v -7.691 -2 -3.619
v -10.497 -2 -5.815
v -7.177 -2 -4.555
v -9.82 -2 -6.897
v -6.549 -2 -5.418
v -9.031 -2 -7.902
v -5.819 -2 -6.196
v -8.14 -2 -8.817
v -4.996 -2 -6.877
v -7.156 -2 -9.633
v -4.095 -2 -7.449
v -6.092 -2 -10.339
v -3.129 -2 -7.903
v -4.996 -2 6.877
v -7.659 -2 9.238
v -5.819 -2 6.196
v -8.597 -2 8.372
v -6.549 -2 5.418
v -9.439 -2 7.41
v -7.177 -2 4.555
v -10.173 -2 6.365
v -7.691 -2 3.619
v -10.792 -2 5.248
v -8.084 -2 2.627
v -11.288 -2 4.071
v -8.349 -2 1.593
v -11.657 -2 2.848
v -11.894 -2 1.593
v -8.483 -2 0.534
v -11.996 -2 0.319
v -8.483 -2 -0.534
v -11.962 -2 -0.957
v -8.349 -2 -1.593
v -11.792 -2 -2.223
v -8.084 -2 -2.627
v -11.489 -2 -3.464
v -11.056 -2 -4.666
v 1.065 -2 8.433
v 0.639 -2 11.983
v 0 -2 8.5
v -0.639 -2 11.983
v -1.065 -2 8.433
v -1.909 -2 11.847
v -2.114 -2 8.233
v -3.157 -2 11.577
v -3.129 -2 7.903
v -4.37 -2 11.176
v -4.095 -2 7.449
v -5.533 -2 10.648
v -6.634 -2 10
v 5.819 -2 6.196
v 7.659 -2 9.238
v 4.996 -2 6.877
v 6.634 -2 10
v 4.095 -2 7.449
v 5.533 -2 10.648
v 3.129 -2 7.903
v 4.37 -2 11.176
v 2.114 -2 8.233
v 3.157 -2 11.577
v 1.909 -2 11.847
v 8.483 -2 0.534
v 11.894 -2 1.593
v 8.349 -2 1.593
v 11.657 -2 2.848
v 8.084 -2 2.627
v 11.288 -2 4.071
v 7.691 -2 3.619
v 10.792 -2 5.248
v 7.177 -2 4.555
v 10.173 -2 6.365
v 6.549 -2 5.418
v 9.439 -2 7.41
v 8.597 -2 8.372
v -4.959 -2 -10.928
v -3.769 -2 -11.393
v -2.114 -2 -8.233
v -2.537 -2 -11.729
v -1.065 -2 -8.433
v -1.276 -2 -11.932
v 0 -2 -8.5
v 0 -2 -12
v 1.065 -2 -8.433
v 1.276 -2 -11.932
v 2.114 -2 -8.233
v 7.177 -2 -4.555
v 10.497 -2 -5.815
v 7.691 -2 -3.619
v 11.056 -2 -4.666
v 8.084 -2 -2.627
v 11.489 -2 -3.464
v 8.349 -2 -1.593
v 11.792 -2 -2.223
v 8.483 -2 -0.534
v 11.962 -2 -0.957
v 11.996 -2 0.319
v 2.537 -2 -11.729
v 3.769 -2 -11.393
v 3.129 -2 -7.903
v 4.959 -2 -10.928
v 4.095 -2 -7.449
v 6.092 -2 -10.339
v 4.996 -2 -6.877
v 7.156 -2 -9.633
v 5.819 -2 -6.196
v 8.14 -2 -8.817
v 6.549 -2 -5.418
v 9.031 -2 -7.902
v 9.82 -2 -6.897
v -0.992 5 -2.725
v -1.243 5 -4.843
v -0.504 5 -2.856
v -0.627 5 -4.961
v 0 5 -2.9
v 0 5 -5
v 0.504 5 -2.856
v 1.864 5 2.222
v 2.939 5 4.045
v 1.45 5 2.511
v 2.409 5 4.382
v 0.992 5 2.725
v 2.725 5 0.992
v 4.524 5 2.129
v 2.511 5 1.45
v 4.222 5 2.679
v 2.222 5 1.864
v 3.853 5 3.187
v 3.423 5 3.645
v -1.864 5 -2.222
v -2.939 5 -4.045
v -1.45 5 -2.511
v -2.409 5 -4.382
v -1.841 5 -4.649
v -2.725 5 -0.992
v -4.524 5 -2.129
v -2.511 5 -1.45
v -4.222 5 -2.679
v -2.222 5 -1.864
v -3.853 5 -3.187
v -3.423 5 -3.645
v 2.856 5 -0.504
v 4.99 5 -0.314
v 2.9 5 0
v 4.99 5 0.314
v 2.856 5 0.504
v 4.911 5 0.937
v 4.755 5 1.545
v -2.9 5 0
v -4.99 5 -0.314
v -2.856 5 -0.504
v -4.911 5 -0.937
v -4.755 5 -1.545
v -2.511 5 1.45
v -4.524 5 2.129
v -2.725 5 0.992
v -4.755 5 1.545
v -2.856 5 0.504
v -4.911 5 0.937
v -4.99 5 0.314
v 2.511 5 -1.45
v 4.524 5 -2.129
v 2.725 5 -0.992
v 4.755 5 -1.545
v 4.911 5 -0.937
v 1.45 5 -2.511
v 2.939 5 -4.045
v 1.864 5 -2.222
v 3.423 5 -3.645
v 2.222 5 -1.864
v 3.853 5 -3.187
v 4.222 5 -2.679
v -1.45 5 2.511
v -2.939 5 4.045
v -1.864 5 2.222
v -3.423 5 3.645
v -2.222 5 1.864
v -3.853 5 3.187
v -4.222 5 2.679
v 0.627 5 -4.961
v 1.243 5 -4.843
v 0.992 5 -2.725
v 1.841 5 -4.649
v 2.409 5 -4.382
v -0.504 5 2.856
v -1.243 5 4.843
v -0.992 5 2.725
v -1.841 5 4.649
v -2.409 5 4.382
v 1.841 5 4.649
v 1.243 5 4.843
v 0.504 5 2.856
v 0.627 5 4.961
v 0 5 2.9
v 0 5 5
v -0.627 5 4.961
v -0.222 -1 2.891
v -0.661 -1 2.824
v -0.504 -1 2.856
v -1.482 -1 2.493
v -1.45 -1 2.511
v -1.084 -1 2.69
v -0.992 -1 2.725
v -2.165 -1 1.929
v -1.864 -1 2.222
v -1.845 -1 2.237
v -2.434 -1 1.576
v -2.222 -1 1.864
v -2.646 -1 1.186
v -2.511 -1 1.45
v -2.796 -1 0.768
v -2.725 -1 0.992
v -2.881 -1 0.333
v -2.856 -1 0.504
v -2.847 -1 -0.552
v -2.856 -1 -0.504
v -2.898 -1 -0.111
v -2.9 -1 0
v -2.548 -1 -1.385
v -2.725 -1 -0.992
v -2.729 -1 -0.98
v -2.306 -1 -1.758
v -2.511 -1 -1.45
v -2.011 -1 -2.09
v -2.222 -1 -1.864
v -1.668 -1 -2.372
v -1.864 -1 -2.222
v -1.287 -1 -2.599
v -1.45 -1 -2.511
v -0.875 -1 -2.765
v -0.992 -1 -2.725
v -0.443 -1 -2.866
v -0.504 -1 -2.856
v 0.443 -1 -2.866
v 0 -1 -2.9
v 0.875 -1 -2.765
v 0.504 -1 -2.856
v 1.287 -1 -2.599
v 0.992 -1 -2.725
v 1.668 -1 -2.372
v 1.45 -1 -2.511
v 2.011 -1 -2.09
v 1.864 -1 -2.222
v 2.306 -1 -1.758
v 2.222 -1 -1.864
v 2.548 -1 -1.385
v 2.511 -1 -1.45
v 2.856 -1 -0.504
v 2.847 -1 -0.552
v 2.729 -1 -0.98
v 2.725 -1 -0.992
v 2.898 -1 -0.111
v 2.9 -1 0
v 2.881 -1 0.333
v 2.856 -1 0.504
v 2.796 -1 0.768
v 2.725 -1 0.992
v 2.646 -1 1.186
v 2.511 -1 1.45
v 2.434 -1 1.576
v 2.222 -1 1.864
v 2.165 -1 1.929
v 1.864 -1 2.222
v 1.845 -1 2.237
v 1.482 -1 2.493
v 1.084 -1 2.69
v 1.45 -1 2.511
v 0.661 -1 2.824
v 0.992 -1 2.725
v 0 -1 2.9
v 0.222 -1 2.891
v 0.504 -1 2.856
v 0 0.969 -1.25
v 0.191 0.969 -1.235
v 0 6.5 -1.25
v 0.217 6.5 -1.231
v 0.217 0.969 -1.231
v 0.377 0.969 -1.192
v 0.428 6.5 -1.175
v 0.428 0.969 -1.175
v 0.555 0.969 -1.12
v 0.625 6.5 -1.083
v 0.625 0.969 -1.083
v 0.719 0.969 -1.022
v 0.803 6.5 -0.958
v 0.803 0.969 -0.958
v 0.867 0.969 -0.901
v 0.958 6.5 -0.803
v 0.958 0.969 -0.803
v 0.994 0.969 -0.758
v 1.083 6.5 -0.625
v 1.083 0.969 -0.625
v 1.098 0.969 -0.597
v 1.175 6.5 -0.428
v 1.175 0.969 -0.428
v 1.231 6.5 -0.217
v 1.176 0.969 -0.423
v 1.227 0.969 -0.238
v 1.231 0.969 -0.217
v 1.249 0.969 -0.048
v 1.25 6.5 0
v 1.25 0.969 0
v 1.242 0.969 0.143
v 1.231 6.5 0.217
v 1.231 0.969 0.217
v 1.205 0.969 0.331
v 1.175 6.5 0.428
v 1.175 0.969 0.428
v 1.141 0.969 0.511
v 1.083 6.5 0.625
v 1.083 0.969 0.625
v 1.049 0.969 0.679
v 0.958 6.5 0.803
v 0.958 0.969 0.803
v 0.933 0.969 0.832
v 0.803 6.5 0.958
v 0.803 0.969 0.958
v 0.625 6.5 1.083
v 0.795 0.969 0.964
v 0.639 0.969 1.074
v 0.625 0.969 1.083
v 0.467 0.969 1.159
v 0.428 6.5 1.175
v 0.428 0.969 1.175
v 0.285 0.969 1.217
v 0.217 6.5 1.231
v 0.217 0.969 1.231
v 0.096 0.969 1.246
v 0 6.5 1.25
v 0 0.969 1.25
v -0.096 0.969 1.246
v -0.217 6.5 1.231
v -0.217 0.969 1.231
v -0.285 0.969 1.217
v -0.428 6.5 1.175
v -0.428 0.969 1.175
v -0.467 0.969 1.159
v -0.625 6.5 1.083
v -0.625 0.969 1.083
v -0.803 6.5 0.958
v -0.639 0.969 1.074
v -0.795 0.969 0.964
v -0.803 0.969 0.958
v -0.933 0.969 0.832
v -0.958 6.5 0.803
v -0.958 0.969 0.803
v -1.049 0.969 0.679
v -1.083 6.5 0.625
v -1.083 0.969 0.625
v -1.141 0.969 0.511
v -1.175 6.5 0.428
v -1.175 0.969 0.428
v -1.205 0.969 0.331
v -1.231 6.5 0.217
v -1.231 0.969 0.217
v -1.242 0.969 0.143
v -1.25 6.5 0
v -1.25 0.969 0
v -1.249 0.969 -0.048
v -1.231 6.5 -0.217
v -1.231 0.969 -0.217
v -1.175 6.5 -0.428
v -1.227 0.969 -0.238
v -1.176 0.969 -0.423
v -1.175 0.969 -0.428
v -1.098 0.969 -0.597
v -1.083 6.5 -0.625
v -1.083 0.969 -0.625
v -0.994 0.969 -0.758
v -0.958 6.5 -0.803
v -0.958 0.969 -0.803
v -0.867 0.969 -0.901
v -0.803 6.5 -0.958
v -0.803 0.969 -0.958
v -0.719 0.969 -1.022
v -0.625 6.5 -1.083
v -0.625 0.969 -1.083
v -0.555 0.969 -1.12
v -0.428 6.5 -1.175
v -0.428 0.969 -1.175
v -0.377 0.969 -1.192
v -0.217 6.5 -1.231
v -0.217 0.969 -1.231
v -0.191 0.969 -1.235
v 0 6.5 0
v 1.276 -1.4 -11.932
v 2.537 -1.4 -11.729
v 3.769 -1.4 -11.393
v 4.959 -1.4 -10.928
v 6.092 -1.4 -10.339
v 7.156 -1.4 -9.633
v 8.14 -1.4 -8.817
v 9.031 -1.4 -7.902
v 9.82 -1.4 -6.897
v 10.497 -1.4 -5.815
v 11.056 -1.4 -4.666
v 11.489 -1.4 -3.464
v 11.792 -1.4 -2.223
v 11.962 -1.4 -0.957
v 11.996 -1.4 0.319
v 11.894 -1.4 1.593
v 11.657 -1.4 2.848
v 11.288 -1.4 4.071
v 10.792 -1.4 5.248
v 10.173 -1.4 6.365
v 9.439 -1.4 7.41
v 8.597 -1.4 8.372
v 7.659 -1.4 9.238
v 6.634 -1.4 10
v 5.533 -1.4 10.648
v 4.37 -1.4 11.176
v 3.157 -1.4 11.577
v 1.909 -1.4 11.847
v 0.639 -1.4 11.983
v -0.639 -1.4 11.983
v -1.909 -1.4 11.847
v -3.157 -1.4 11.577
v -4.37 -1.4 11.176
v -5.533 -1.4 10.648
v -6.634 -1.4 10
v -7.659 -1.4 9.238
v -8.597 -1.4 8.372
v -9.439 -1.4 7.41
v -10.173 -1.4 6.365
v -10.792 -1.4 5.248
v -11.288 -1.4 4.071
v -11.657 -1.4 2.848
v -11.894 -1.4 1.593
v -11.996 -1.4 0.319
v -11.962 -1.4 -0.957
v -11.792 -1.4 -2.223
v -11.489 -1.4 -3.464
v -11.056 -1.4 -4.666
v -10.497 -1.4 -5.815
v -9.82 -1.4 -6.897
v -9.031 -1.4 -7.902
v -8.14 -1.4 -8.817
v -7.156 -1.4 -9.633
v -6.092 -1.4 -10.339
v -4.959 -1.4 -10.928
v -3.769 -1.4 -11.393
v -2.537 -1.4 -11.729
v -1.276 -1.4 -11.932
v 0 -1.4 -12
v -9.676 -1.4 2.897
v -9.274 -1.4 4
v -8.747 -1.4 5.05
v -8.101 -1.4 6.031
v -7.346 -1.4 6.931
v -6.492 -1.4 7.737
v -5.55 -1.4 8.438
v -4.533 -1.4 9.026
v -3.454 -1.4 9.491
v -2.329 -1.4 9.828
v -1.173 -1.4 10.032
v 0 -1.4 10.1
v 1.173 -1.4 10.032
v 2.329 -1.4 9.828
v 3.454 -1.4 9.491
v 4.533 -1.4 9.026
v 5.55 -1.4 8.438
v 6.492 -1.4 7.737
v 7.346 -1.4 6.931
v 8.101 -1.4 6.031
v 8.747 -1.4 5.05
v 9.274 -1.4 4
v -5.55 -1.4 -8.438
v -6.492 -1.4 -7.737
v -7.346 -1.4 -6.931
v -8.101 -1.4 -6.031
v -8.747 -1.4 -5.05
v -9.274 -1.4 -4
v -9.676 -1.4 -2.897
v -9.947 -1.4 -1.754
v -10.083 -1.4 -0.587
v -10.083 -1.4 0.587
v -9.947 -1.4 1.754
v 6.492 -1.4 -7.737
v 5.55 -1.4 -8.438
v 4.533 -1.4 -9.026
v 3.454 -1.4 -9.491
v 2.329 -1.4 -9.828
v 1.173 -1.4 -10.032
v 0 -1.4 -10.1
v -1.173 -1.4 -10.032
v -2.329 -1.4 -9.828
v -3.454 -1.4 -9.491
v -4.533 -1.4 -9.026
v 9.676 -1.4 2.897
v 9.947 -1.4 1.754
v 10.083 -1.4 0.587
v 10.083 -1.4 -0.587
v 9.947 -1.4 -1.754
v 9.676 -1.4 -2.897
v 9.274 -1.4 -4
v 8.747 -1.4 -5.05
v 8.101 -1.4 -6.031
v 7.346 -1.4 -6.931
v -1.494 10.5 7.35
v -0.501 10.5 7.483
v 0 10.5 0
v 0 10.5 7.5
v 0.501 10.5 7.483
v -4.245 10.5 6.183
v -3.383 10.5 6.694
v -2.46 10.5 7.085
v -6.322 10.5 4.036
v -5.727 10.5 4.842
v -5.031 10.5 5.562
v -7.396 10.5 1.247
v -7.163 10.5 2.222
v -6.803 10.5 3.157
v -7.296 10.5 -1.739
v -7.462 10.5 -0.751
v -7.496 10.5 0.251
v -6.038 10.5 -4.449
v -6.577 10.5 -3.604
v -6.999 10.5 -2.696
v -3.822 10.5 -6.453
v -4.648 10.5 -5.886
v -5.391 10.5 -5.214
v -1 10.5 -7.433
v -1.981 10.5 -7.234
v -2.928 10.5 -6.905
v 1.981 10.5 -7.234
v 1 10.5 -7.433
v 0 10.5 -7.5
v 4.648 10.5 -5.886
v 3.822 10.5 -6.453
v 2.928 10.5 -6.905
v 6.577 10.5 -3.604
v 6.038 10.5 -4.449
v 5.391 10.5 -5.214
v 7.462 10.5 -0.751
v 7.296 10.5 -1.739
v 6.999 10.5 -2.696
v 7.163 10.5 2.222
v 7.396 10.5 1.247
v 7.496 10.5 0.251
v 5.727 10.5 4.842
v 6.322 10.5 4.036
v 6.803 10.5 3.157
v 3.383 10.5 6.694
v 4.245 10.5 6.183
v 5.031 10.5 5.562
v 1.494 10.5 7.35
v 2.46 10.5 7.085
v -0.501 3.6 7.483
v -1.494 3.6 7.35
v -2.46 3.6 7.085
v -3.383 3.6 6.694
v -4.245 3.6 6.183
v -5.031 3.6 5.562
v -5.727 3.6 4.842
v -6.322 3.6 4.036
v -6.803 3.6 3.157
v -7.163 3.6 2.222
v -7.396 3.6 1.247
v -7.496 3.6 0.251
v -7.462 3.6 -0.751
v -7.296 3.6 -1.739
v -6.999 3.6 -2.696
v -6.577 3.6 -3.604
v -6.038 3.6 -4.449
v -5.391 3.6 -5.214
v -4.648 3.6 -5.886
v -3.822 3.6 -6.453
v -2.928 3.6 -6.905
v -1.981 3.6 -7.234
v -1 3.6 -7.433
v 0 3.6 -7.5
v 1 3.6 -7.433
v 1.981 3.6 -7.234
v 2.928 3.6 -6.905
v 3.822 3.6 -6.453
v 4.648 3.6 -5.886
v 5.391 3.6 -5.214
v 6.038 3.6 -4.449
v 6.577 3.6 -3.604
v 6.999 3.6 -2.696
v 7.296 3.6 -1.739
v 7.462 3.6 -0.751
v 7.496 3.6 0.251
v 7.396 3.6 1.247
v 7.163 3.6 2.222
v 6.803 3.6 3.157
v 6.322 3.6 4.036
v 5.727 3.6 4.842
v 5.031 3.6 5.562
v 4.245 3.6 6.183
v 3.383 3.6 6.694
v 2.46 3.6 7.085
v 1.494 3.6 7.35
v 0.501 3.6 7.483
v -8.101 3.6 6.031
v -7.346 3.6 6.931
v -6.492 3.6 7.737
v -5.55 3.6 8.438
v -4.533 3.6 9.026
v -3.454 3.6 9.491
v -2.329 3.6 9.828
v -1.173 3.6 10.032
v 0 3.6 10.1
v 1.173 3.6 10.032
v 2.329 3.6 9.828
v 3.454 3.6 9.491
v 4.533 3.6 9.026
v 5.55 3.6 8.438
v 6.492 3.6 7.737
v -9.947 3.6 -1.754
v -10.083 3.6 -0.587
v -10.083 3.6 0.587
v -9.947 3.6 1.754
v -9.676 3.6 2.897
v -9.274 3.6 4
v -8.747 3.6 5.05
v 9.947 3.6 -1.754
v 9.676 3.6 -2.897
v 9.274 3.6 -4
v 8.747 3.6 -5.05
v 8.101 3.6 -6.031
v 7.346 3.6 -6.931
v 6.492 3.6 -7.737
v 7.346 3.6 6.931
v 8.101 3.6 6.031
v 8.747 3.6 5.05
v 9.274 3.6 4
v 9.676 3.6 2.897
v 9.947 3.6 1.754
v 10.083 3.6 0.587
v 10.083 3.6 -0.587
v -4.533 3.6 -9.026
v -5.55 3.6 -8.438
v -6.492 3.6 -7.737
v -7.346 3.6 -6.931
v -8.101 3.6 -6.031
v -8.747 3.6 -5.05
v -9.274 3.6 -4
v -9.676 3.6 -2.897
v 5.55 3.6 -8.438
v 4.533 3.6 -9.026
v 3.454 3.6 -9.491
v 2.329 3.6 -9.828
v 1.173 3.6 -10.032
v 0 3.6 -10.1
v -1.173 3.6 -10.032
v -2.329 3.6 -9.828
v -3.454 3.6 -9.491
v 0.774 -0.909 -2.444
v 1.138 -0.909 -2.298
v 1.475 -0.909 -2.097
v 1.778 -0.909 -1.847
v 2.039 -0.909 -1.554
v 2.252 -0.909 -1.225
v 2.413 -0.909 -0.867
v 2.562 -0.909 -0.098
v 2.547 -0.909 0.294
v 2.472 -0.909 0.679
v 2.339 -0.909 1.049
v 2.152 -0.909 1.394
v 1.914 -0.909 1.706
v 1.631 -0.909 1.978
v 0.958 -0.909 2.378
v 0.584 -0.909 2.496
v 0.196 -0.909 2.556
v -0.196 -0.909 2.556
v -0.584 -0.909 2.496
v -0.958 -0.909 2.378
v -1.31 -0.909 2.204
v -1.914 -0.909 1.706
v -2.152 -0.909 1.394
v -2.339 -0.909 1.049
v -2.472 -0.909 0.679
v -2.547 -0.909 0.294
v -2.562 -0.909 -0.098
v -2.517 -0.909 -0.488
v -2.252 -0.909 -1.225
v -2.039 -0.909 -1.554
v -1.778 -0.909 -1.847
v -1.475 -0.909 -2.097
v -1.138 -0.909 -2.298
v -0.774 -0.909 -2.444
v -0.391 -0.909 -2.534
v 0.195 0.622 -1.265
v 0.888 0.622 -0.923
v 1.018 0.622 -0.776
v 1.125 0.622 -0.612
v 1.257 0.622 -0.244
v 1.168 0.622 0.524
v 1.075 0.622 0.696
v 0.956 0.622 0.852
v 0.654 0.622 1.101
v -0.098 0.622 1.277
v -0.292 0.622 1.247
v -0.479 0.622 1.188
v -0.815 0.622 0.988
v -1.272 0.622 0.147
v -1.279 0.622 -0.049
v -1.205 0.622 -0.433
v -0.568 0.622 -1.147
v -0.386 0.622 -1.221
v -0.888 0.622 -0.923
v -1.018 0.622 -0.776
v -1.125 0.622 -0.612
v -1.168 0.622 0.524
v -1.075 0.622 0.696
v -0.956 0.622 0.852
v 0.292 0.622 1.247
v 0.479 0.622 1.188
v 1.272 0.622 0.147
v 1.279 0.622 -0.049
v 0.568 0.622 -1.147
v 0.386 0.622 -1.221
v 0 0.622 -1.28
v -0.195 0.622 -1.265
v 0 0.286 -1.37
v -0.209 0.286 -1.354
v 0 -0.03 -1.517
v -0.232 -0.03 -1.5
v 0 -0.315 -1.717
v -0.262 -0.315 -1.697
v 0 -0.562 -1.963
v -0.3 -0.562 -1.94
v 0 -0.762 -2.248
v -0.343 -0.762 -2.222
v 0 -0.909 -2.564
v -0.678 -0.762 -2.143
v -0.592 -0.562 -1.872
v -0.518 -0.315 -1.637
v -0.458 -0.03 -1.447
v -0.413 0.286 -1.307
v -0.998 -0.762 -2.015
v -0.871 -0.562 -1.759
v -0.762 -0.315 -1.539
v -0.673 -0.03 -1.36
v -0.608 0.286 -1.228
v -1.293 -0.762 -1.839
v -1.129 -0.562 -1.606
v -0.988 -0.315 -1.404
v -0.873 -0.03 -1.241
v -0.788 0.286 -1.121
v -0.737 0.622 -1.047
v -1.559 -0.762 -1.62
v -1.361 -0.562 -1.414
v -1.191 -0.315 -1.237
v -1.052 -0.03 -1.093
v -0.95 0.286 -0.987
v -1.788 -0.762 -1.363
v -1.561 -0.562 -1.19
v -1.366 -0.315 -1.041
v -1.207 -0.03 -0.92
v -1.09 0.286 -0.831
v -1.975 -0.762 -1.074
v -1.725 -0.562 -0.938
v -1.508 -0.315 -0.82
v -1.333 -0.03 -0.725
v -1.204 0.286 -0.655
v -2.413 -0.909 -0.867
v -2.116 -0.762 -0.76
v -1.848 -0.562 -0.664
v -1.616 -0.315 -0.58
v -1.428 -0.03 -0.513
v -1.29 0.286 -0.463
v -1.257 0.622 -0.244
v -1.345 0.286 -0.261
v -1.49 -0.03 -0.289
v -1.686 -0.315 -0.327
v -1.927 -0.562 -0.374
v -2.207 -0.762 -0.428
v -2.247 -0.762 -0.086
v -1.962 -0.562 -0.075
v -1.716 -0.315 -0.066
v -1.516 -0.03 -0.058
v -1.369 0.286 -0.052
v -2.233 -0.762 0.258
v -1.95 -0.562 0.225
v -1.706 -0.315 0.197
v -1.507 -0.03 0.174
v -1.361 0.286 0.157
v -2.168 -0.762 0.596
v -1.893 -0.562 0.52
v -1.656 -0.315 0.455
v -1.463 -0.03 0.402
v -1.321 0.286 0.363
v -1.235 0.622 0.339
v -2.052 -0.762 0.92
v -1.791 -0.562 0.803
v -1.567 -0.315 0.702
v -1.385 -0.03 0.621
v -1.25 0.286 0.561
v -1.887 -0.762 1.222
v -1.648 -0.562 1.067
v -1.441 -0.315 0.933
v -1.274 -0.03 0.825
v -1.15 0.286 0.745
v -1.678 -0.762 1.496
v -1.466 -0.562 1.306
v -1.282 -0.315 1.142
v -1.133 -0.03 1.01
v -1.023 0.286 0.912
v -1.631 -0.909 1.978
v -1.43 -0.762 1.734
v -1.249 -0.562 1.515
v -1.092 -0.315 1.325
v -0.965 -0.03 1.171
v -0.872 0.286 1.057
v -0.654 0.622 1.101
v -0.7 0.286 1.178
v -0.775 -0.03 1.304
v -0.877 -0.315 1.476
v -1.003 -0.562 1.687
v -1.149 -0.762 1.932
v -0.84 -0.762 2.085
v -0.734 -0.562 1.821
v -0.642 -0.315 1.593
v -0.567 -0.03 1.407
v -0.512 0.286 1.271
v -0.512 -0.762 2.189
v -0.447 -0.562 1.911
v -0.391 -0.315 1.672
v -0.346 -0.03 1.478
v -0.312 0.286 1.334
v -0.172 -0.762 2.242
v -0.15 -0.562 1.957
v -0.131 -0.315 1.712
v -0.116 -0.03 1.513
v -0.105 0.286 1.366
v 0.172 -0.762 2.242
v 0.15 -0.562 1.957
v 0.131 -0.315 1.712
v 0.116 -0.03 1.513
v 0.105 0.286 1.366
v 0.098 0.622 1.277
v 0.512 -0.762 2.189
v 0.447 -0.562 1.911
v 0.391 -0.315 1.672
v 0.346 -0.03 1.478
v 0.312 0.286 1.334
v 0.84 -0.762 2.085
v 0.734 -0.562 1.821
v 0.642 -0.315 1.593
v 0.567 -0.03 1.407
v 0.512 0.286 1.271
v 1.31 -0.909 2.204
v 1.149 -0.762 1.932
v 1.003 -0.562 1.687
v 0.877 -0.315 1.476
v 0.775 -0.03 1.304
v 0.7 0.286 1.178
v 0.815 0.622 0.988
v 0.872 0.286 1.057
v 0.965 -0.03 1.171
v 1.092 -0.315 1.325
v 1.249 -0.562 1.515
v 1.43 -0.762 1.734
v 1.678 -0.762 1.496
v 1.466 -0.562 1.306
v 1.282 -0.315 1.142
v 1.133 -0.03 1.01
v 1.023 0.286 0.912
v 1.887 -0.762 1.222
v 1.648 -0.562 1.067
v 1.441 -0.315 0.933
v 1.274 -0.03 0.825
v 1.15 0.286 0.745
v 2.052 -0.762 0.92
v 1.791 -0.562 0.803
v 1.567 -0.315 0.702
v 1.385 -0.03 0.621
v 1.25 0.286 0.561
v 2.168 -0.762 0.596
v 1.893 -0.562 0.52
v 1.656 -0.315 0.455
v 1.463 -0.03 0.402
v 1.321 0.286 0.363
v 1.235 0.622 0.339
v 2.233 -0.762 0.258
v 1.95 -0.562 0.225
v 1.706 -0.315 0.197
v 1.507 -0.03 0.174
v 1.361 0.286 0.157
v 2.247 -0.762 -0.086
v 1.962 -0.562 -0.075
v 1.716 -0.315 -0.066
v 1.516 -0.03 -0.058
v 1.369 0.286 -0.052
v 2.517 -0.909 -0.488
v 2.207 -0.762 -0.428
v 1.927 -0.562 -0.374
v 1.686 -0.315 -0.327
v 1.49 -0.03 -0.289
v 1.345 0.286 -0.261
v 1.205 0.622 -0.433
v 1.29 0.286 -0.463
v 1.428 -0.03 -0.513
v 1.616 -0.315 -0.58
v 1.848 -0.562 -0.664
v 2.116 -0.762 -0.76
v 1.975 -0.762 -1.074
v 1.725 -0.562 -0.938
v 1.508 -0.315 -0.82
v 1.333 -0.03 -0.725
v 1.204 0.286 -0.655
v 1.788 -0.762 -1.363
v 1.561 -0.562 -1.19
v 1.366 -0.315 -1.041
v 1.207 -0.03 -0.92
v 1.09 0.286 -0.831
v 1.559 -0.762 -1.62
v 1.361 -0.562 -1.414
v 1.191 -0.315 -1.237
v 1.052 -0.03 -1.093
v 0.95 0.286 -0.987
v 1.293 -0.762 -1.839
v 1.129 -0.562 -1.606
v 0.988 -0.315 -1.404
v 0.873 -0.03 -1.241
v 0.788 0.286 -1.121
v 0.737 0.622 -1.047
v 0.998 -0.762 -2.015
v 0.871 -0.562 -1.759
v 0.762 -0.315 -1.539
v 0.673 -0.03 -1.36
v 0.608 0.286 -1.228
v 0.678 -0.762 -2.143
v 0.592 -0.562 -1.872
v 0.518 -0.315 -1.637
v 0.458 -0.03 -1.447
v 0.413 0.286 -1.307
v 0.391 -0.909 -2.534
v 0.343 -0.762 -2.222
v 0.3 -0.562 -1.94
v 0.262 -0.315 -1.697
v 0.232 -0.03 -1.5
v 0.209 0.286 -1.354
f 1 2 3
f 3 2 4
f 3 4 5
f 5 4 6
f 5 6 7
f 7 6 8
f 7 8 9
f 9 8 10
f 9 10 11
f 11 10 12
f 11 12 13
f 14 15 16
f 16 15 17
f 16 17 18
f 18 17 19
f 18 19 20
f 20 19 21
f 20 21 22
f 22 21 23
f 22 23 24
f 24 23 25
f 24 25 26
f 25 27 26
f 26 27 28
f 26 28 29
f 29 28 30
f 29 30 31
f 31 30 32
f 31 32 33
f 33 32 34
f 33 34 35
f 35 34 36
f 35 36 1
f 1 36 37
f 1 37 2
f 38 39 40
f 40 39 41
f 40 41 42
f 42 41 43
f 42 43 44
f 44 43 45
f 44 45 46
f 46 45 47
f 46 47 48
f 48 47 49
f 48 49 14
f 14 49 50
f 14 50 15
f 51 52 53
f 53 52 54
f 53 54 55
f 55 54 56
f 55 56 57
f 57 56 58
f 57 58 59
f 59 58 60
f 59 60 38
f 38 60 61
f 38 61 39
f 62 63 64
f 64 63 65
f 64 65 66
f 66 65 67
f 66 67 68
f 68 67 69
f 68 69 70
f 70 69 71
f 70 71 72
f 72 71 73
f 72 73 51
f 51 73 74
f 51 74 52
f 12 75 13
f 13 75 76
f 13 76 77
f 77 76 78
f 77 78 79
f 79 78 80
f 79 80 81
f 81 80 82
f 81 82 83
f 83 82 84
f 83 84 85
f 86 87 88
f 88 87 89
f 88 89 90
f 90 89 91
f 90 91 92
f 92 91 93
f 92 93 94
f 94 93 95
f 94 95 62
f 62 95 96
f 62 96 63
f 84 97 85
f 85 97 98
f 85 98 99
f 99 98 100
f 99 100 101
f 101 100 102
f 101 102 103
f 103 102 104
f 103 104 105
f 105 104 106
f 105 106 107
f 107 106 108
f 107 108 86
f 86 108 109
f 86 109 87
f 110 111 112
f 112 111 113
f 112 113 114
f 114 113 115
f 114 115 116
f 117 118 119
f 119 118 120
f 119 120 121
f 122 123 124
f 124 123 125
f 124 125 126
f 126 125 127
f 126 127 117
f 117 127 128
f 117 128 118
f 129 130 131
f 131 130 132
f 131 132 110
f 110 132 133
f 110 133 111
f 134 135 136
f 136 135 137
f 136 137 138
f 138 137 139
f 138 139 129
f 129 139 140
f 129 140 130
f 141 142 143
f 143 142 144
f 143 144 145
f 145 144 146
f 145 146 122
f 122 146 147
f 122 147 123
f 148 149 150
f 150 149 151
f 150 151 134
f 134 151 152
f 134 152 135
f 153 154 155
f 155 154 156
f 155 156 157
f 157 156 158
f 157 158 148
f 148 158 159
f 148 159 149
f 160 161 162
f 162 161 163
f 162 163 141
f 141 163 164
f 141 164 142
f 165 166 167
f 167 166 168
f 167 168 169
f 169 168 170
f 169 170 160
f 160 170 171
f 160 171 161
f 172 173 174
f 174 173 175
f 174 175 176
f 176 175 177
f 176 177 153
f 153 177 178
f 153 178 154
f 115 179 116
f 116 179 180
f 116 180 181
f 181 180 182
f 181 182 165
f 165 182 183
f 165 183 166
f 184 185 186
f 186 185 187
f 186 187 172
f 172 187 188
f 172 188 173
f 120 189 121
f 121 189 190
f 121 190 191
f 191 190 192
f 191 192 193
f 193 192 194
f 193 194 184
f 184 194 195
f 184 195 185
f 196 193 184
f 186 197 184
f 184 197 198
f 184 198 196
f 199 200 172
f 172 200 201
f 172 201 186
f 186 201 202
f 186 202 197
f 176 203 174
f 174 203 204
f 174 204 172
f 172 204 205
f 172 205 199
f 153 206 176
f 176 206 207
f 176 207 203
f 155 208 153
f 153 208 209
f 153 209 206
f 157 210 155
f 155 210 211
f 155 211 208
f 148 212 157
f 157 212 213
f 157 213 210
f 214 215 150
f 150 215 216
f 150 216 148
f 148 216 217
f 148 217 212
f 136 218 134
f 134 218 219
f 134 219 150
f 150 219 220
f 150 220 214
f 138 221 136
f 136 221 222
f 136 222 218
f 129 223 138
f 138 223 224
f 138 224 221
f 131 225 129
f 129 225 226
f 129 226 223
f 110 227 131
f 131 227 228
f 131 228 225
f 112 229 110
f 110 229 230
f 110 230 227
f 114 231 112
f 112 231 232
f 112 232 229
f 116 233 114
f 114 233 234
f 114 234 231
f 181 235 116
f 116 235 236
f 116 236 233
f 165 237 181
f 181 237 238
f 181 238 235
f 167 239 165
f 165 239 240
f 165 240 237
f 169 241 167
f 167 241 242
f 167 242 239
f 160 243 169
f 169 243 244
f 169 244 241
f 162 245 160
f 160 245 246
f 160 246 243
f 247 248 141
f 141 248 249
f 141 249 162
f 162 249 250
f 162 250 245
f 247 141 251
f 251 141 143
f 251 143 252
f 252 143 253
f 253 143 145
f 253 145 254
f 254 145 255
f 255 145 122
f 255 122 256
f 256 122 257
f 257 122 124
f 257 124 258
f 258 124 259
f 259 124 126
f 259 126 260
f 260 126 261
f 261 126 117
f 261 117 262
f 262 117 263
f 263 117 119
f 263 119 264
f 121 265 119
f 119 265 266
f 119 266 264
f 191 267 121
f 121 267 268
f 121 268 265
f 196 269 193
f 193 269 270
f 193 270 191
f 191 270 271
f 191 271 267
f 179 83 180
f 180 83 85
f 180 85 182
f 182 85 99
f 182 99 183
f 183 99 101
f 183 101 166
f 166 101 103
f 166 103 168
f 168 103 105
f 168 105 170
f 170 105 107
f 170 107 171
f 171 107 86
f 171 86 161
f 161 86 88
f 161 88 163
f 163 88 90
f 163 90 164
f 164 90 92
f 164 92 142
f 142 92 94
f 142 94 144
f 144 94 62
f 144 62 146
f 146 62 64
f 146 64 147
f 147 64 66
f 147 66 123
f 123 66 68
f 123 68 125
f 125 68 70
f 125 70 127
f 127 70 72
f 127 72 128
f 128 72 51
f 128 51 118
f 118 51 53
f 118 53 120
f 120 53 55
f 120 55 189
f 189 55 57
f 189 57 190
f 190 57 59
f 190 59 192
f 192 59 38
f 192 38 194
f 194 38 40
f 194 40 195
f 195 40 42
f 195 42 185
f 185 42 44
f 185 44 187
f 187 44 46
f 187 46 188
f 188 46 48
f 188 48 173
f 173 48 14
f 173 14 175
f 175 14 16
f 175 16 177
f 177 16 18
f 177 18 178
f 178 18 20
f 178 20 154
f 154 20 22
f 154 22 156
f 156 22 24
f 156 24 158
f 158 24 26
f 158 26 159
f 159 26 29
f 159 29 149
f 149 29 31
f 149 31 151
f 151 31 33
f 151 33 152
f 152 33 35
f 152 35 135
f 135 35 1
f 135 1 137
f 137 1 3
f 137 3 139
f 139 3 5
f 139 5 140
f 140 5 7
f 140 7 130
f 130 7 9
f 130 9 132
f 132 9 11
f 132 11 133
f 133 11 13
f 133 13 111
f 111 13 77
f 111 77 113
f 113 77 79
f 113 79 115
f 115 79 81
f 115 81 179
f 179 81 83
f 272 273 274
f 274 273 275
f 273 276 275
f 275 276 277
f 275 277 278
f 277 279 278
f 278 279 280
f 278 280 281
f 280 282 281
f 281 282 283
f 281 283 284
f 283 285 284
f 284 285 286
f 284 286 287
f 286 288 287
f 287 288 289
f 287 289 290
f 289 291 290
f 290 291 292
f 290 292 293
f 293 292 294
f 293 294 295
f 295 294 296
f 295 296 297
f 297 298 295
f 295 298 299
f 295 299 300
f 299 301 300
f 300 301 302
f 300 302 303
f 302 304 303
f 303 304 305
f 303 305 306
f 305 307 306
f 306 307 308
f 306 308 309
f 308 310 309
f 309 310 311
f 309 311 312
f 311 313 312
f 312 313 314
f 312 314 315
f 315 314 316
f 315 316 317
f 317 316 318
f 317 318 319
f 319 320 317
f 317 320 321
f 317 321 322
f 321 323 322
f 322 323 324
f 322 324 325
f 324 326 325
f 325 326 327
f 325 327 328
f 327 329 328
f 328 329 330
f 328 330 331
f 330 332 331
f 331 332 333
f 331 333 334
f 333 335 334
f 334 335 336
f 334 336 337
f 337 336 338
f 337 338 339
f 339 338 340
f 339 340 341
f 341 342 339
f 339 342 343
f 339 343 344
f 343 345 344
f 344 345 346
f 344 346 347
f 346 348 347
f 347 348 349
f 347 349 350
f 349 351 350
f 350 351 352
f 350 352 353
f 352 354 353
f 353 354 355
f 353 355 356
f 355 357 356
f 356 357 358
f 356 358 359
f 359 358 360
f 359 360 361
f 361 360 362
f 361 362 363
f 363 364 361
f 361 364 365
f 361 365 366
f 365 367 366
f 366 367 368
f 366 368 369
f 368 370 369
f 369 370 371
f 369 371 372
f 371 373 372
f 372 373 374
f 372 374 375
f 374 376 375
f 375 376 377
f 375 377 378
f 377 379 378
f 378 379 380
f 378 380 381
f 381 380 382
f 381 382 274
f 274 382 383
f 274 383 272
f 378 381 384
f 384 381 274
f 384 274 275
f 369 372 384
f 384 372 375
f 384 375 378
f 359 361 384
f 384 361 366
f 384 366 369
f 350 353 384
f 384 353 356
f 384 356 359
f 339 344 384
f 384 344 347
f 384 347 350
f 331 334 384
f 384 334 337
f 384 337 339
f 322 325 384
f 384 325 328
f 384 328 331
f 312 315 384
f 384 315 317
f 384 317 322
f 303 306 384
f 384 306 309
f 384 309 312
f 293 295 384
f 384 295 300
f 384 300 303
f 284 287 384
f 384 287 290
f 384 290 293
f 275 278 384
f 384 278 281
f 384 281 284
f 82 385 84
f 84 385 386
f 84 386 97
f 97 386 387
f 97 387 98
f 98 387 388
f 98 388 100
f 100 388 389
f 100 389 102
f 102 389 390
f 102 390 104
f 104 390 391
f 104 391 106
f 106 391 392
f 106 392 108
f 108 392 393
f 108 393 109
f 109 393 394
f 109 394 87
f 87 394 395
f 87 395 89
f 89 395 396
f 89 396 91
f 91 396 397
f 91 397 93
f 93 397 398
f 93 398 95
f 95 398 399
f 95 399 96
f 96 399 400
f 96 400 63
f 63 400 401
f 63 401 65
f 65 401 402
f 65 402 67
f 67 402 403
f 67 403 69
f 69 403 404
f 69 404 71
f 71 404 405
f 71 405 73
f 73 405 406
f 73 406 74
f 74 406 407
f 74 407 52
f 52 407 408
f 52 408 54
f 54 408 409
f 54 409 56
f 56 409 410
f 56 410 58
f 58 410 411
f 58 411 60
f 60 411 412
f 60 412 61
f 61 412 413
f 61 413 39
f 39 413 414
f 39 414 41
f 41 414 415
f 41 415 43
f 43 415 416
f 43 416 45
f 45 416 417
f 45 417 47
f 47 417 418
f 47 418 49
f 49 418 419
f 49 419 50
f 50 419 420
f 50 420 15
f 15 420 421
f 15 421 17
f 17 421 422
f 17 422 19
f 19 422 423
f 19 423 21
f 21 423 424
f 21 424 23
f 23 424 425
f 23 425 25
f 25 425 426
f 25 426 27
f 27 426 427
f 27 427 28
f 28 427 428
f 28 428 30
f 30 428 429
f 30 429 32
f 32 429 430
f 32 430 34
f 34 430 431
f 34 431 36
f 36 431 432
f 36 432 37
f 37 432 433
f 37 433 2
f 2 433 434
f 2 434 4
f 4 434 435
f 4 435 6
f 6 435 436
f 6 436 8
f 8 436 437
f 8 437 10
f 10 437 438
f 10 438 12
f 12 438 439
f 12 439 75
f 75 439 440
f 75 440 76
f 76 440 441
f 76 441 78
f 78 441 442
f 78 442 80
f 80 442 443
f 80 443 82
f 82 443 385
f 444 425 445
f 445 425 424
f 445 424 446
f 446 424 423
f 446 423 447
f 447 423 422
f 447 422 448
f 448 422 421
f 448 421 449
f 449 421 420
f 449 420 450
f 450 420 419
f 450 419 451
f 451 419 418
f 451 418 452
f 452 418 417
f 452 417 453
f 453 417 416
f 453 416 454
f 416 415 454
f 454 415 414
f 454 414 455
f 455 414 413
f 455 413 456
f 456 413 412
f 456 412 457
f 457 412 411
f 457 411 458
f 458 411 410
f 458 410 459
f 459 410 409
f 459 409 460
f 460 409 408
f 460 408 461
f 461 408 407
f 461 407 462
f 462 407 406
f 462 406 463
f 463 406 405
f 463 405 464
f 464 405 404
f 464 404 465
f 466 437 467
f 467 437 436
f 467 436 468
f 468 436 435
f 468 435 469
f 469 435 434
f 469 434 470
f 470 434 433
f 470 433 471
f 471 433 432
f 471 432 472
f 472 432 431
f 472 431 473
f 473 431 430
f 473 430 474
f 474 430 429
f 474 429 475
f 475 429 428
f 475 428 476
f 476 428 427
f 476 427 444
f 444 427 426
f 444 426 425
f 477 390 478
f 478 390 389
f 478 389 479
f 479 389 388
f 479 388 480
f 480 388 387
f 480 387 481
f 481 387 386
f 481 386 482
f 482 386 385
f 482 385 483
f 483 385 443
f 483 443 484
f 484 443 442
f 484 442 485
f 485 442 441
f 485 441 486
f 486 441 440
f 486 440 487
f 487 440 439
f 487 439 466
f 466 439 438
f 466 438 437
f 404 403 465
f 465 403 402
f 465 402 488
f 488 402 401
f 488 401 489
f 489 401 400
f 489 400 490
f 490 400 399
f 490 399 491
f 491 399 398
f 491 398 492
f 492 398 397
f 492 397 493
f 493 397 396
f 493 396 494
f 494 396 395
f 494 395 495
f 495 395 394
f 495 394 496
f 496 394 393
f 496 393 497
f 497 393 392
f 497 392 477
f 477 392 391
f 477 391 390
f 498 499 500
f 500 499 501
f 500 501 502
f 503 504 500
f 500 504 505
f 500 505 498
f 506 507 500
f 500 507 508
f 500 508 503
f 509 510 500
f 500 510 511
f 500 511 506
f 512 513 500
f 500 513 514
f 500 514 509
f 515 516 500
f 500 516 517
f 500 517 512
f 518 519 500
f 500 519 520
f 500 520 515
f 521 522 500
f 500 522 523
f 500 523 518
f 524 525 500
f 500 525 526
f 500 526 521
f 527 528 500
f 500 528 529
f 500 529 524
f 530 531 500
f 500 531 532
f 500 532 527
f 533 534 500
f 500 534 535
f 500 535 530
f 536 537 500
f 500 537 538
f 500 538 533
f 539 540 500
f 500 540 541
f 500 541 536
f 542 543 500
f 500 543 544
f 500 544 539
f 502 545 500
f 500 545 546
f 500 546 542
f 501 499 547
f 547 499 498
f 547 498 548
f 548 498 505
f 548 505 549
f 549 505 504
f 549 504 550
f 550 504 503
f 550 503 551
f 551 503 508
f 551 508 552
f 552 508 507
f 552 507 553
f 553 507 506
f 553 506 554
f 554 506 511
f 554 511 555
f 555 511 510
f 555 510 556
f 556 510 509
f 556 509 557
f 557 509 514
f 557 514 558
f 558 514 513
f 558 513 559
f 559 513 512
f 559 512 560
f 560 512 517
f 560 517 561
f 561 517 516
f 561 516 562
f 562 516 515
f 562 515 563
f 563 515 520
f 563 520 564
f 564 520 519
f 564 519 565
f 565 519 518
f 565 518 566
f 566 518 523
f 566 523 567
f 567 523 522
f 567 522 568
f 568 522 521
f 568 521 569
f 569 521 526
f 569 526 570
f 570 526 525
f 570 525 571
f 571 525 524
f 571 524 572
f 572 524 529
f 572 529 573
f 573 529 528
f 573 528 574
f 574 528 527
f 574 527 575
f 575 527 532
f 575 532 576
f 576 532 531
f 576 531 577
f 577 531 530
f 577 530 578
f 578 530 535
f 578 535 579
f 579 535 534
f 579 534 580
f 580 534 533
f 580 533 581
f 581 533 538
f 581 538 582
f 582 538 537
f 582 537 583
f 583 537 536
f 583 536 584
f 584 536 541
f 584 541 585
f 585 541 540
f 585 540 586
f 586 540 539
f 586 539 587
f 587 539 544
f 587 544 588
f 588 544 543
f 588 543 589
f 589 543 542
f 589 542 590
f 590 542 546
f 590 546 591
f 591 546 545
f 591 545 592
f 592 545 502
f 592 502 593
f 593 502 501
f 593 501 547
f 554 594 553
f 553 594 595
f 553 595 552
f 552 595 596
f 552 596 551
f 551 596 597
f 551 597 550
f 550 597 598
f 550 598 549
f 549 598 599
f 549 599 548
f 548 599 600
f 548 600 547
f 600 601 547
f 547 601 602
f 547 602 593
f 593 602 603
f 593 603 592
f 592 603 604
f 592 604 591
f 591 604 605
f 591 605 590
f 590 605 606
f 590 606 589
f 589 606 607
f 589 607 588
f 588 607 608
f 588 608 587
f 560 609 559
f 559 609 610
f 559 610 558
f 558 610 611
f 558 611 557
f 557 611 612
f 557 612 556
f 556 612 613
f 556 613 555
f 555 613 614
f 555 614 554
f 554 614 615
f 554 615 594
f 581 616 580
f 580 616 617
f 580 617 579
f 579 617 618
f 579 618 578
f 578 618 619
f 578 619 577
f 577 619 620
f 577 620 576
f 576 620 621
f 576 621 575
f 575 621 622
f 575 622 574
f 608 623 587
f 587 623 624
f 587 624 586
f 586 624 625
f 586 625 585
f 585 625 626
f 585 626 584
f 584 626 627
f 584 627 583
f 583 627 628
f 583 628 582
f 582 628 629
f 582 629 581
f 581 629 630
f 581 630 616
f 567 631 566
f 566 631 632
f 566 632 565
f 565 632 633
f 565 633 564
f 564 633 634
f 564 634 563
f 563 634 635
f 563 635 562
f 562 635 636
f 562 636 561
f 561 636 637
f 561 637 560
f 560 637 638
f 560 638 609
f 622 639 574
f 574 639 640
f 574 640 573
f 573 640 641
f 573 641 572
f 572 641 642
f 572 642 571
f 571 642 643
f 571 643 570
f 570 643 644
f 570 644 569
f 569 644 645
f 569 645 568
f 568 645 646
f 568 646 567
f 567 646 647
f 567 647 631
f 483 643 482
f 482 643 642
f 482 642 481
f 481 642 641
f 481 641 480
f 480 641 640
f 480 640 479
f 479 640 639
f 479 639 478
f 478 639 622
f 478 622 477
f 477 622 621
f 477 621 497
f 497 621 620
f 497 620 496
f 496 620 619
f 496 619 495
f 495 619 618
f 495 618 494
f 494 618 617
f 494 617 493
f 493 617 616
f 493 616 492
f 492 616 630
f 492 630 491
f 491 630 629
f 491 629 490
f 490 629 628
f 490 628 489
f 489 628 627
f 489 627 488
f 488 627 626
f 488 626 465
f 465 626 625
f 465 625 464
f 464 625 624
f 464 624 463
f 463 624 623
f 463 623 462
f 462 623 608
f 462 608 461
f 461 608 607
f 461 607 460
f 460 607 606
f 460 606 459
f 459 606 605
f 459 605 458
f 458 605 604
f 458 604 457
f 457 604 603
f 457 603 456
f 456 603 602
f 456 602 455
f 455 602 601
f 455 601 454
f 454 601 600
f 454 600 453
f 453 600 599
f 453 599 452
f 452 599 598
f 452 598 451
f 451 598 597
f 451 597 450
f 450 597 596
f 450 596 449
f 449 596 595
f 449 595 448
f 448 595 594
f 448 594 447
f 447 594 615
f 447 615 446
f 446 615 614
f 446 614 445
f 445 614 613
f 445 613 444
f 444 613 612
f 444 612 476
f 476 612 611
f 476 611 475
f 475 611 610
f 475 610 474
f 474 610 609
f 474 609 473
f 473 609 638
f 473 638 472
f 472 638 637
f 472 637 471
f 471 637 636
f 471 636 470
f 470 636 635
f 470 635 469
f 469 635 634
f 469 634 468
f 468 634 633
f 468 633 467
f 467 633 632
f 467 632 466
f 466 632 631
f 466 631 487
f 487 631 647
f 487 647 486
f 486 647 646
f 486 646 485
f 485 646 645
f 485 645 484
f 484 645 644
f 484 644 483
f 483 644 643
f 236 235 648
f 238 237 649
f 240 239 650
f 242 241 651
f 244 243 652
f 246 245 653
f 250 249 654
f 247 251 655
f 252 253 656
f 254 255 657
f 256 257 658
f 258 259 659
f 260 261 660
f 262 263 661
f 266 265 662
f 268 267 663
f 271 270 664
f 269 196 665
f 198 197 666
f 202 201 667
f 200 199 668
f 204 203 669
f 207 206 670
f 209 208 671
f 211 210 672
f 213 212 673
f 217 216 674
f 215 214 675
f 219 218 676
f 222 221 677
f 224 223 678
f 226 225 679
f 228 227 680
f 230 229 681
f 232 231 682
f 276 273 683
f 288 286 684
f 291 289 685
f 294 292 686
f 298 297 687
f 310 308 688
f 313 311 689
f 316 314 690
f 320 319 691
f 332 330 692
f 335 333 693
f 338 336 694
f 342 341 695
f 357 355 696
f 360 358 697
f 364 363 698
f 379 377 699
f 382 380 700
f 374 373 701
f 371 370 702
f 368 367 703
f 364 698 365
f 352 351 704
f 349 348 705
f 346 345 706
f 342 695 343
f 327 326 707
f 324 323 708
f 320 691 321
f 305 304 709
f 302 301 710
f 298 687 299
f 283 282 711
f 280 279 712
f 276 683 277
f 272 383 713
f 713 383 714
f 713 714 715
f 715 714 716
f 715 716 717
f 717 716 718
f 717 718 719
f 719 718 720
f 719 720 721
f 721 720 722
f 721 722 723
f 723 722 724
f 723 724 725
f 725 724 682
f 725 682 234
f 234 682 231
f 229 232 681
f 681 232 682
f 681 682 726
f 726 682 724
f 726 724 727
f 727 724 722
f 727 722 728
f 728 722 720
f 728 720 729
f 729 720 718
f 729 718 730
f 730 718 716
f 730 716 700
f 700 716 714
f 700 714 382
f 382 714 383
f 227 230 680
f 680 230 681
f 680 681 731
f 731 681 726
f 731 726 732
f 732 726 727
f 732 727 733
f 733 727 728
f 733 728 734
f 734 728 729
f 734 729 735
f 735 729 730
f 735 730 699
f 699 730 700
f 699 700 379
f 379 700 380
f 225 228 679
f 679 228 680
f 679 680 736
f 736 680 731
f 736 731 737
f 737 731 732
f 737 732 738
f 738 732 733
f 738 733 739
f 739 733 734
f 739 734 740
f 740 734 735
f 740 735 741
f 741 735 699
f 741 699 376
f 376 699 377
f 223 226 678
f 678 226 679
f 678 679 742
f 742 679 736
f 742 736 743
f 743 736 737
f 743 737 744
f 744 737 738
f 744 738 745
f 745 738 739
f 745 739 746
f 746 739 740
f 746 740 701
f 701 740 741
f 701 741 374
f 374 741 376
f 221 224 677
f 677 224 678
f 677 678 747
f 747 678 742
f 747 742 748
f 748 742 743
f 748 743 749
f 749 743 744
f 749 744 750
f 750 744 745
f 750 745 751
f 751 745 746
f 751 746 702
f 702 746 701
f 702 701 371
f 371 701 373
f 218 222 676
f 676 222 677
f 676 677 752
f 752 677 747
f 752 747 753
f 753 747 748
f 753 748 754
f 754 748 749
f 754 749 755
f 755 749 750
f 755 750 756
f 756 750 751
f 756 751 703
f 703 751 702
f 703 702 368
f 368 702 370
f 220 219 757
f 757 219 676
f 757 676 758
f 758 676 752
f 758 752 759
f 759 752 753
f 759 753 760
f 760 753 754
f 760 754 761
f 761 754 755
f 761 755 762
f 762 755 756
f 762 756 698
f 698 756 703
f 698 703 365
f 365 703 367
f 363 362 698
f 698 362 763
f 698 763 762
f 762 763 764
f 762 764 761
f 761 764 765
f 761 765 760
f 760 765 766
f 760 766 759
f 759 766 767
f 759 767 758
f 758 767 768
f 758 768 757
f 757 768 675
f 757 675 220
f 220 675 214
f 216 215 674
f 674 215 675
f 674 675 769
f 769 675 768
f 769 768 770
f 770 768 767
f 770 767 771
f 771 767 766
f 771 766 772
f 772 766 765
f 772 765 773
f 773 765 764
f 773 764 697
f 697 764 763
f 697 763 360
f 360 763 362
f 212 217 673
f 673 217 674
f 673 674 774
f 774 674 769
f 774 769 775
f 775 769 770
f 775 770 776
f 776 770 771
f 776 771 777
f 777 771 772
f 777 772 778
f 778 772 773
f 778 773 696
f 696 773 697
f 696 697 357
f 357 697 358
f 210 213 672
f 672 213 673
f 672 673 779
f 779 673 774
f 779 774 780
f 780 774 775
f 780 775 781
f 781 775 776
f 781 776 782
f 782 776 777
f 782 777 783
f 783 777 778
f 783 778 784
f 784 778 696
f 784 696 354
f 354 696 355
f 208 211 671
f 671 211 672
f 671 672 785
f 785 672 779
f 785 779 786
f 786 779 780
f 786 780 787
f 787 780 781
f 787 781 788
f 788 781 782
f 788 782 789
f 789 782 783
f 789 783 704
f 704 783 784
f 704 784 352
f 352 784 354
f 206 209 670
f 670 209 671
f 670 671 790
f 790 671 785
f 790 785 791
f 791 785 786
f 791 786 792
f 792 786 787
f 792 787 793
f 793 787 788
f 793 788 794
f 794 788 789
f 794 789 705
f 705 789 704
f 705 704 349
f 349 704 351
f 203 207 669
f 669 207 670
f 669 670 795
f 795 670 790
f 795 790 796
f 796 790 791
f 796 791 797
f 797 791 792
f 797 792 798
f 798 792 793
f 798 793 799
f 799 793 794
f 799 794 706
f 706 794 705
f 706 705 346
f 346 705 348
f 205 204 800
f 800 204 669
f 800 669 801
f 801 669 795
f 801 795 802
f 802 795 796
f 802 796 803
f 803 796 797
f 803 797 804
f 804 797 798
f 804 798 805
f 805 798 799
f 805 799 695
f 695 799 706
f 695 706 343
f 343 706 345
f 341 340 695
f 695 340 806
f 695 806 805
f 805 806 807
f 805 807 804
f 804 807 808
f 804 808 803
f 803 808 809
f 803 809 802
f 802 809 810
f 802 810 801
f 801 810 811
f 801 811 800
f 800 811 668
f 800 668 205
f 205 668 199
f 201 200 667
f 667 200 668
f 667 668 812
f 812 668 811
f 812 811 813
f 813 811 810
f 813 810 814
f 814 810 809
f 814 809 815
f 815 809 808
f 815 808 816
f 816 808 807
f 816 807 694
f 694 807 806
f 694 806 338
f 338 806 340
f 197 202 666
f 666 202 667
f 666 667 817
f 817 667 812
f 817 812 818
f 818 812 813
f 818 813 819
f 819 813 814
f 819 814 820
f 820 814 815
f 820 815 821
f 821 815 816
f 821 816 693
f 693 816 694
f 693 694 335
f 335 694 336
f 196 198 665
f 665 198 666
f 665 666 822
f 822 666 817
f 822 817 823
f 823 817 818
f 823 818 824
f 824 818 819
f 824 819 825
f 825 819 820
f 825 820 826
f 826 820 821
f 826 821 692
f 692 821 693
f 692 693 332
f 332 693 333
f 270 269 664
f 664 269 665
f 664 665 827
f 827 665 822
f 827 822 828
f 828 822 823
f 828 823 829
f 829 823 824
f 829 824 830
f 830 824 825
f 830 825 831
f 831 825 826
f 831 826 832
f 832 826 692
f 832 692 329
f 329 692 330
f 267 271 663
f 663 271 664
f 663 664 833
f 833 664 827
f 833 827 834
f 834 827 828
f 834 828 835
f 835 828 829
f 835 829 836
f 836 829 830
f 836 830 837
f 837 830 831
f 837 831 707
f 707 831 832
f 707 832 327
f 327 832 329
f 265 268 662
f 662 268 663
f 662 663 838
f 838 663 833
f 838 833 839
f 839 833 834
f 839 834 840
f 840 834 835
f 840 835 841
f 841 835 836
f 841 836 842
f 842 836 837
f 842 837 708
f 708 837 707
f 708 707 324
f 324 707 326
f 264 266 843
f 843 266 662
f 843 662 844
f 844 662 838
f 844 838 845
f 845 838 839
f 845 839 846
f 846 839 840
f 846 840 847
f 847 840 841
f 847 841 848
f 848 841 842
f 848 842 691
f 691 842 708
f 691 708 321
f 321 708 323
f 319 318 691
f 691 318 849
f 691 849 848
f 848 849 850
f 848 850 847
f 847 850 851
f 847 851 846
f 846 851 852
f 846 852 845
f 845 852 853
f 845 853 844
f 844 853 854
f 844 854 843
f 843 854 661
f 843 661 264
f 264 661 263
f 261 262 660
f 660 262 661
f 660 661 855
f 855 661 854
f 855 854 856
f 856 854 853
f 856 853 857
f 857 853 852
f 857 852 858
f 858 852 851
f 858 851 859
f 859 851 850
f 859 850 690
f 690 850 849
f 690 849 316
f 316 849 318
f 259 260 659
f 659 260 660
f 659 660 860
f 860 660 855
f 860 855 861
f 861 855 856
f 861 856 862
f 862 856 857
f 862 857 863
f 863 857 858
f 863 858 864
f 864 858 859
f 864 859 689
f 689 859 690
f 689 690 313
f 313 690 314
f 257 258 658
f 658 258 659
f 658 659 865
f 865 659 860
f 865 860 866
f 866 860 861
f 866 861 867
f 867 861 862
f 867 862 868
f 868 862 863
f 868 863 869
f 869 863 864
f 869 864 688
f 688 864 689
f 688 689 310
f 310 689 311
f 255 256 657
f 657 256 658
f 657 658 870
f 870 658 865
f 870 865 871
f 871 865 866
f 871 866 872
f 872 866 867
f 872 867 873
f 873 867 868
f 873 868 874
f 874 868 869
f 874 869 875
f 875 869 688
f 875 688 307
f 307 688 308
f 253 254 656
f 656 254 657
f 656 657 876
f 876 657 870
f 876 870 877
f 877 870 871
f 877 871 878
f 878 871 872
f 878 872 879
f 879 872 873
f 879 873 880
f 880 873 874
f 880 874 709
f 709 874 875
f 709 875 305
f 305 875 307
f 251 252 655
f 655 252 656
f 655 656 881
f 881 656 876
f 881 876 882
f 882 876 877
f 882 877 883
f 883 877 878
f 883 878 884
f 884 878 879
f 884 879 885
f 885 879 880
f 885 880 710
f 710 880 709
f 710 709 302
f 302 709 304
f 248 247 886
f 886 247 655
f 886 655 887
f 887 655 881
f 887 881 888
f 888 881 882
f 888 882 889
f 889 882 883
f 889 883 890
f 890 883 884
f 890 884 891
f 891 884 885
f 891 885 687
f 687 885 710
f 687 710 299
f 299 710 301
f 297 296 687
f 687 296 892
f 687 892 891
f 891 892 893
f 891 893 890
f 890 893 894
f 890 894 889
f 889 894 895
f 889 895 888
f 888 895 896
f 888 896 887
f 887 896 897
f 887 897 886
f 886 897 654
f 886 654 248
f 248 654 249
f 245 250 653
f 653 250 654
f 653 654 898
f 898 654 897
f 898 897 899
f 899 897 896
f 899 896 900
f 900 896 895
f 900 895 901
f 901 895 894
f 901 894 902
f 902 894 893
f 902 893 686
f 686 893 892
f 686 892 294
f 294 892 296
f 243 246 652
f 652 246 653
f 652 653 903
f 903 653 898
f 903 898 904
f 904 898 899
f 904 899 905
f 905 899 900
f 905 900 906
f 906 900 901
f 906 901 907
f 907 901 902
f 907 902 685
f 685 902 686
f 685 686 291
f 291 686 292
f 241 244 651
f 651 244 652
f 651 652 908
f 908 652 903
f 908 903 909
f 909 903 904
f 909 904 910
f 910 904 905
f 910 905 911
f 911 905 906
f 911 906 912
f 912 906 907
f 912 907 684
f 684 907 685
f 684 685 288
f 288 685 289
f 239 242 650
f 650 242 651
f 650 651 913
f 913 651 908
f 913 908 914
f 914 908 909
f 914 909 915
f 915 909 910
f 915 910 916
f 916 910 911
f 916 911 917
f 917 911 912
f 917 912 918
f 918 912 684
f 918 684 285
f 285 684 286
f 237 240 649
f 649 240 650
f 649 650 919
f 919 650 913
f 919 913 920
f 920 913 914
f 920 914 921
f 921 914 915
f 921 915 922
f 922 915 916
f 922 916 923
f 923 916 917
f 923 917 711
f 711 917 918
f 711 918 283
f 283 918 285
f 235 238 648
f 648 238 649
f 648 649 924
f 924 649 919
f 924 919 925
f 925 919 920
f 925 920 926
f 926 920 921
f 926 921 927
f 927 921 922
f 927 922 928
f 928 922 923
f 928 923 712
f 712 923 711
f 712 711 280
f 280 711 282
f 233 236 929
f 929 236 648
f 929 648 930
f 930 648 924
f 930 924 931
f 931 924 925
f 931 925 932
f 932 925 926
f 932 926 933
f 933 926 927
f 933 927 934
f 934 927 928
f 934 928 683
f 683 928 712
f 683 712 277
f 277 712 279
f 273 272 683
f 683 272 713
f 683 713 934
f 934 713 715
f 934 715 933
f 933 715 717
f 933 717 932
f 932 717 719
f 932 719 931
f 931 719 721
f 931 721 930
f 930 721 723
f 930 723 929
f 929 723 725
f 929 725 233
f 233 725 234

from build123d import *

# Parameters (mm, degrees)
ESQUISSE1_R             = 7.5
BOSS_EXTRU_1_DEPTH      = 10.5
BOSS_EXTRU_2_DEPTH      = 2
BOSS_EXTRU_2_DEPTH_BACK = 3.6
ESQUISSE2_R             = 10.1
ESQUISSE3_R             = 4.75
ENL_V_MAT_EXTRU_2_DEPTH = 6.999999999999999
ESQUISSE4_R             = 2.9
BOSS_EXTRU_3_DEPTH      = 6
CHANFREIN1_SIZE         = 3.75
CHANFREIN1_SIZE_2       = 7.5
ESQUISSE11_R            = 1.25
ENL_V_MAT_EXTRU_4_DEPTH = 7.5
ESQUISSE29_R            = 12
ESQUISSE29_R_2          = 10.1
BOSS_EXTRU_11_DEPTH     = 0.6
CONG_1_R                = 2


with BuildPart() as part:
    # Esquisse1 → Boss.-Extru.1 (new body)
    with BuildSketch(Plane(origin=(0, 0, 0), x_dir=(1, 0, 0), z_dir=(0, 1, 0))):
        with Locations(Location((0, 0, 0), (0, 0, 90))):
            Circle(ESQUISSE1_R)
    extrude(amount=BOSS_EXTRU_1_DEPTH)

    # Esquisse2 → Boss.-Extru.2 (add, two sides: drawn at the far end of the back side and taken through both)
    with BuildSketch(Plane.XZ.offset(-BOSS_EXTRU_2_DEPTH_BACK)):
        with Locations(Location((0, 0, 0), (0, 0, 270))):
            Circle(ESQUISSE2_R)
    extrude(amount=BOSS_EXTRU_2_DEPTH + BOSS_EXTRU_2_DEPTH_BACK)

    # Esquisse3 → Enlèv. mat.-Extru.2 (cut)
    with BuildSketch(Plane.XZ.offset(2)):
        with Locations(Location((0, 0, 0), (0, 0, 270))):
            Circle(ESQUISSE3_R)
    extrude(amount=-ENL_V_MAT_EXTRU_2_DEPTH, mode=Mode.SUBTRACT)

    # Esquisse4 → Boss.-Extru.3 (add)
    with BuildSketch(Plane.XZ.offset(-4.999999999999999)):
        with Locations(Location((0, 0, 0), (0, 0, 270))):
            Circle(ESQUISSE4_R)
    extrude(amount=BOSS_EXTRU_3_DEPTH)

    # Chanfrein1
    # the kernel refuses this chamfer: 7.5, 3.75 mm, written as the material it takes off along each edge
    with BuildSketch(Plane(origin=(0, -2, 0), x_dir=(-1.8e-16, 0, -1), z_dir=(-1, 0, 1.8e-16))) as chanfrein1_piece_1_section:
        Polygon((4.75 + CHANFREIN1_SIZE, 0), (4.75, -CHANFREIN1_SIZE_2), (4.75, 0), align=None)
    chanfrein1_piece_1 = revolve(axis=Axis((0, -2, 0), (0, -1, 0)), mode=Mode.PRIVATE)
    chanfrein1_piece_1 = split(chanfrein1_piece_1, bisect_by=Plane(origin=(2.06e-15, 4.999999999999999, 6.741862305399), z_dir=(0, -1, 0)), keep=Keep.TOP, mode=Mode.PRIVATE)
    add(chanfrein1_piece_1, mode=Mode.SUBTRACT)

    # Esquisse11 → Enlèv. mat.-Extru.4 (cut)
    with BuildSketch(Plane.XZ.offset(1.0000000000000009)):
        with Locations(Location((0, 0, 0), (0, 0, 270))):
            Circle(ESQUISSE11_R)
    extrude(amount=-ENL_V_MAT_EXTRU_4_DEPTH, mode=Mode.SUBTRACT)

    # Esquisse29 → Boss.-Extru.11 (add)
    with BuildSketch(Plane.XZ.offset(2)):
        with Locations(Location((0, 0, 0), (0, 0, 270))):
            Circle(ESQUISSE29_R)
        with Locations(Location((0, 0, 0), (0, 0, 270))):
            Circle(ESQUISSE29_R_2, mode=Mode.SUBTRACT)
    extrude(amount=-BOSS_EXTRU_11_DEPTH)

    # Congé1
    # the kernel refuses this fillet: 2 mm, written as the material it takes off along each edge
    with BuildSketch(Plane(origin=(0, -1.0000000000000009, 0), x_dir=(-1.8e-16, 0, -1), z_dir=(-1, 0, 1.8e-16))) as cong_1_piece_1:
        with BuildLine():
            CenterArc((3.25, -1.9691368667519222), CONG_1_R, 100.07865810778567, 79.92134189221433)
            Line((1.25, -1.9691368667519222), (1.21, -1.9691368667519222))
            Line((1.21, -1.9691368667519222), (1.21, 0))
            Line((1.21, 0), (1.25, 0.04000000000000004))
            ThreePointArc((1.25, 0.04000000000000004), (2.0750000000000344, 0.04000000000000004), (2.89300000000007, 0.03938273733464226))
            Line((2.89300000000007, 0.03938273733464226), (2.9000000000000687, -3.8836e-13))
        make_face()
    revolve(axis=Axis((0, -1.0000000000000009, 0), (0, -1, 0)), mode=Mode.SUBTRACT)


solid = part.part
